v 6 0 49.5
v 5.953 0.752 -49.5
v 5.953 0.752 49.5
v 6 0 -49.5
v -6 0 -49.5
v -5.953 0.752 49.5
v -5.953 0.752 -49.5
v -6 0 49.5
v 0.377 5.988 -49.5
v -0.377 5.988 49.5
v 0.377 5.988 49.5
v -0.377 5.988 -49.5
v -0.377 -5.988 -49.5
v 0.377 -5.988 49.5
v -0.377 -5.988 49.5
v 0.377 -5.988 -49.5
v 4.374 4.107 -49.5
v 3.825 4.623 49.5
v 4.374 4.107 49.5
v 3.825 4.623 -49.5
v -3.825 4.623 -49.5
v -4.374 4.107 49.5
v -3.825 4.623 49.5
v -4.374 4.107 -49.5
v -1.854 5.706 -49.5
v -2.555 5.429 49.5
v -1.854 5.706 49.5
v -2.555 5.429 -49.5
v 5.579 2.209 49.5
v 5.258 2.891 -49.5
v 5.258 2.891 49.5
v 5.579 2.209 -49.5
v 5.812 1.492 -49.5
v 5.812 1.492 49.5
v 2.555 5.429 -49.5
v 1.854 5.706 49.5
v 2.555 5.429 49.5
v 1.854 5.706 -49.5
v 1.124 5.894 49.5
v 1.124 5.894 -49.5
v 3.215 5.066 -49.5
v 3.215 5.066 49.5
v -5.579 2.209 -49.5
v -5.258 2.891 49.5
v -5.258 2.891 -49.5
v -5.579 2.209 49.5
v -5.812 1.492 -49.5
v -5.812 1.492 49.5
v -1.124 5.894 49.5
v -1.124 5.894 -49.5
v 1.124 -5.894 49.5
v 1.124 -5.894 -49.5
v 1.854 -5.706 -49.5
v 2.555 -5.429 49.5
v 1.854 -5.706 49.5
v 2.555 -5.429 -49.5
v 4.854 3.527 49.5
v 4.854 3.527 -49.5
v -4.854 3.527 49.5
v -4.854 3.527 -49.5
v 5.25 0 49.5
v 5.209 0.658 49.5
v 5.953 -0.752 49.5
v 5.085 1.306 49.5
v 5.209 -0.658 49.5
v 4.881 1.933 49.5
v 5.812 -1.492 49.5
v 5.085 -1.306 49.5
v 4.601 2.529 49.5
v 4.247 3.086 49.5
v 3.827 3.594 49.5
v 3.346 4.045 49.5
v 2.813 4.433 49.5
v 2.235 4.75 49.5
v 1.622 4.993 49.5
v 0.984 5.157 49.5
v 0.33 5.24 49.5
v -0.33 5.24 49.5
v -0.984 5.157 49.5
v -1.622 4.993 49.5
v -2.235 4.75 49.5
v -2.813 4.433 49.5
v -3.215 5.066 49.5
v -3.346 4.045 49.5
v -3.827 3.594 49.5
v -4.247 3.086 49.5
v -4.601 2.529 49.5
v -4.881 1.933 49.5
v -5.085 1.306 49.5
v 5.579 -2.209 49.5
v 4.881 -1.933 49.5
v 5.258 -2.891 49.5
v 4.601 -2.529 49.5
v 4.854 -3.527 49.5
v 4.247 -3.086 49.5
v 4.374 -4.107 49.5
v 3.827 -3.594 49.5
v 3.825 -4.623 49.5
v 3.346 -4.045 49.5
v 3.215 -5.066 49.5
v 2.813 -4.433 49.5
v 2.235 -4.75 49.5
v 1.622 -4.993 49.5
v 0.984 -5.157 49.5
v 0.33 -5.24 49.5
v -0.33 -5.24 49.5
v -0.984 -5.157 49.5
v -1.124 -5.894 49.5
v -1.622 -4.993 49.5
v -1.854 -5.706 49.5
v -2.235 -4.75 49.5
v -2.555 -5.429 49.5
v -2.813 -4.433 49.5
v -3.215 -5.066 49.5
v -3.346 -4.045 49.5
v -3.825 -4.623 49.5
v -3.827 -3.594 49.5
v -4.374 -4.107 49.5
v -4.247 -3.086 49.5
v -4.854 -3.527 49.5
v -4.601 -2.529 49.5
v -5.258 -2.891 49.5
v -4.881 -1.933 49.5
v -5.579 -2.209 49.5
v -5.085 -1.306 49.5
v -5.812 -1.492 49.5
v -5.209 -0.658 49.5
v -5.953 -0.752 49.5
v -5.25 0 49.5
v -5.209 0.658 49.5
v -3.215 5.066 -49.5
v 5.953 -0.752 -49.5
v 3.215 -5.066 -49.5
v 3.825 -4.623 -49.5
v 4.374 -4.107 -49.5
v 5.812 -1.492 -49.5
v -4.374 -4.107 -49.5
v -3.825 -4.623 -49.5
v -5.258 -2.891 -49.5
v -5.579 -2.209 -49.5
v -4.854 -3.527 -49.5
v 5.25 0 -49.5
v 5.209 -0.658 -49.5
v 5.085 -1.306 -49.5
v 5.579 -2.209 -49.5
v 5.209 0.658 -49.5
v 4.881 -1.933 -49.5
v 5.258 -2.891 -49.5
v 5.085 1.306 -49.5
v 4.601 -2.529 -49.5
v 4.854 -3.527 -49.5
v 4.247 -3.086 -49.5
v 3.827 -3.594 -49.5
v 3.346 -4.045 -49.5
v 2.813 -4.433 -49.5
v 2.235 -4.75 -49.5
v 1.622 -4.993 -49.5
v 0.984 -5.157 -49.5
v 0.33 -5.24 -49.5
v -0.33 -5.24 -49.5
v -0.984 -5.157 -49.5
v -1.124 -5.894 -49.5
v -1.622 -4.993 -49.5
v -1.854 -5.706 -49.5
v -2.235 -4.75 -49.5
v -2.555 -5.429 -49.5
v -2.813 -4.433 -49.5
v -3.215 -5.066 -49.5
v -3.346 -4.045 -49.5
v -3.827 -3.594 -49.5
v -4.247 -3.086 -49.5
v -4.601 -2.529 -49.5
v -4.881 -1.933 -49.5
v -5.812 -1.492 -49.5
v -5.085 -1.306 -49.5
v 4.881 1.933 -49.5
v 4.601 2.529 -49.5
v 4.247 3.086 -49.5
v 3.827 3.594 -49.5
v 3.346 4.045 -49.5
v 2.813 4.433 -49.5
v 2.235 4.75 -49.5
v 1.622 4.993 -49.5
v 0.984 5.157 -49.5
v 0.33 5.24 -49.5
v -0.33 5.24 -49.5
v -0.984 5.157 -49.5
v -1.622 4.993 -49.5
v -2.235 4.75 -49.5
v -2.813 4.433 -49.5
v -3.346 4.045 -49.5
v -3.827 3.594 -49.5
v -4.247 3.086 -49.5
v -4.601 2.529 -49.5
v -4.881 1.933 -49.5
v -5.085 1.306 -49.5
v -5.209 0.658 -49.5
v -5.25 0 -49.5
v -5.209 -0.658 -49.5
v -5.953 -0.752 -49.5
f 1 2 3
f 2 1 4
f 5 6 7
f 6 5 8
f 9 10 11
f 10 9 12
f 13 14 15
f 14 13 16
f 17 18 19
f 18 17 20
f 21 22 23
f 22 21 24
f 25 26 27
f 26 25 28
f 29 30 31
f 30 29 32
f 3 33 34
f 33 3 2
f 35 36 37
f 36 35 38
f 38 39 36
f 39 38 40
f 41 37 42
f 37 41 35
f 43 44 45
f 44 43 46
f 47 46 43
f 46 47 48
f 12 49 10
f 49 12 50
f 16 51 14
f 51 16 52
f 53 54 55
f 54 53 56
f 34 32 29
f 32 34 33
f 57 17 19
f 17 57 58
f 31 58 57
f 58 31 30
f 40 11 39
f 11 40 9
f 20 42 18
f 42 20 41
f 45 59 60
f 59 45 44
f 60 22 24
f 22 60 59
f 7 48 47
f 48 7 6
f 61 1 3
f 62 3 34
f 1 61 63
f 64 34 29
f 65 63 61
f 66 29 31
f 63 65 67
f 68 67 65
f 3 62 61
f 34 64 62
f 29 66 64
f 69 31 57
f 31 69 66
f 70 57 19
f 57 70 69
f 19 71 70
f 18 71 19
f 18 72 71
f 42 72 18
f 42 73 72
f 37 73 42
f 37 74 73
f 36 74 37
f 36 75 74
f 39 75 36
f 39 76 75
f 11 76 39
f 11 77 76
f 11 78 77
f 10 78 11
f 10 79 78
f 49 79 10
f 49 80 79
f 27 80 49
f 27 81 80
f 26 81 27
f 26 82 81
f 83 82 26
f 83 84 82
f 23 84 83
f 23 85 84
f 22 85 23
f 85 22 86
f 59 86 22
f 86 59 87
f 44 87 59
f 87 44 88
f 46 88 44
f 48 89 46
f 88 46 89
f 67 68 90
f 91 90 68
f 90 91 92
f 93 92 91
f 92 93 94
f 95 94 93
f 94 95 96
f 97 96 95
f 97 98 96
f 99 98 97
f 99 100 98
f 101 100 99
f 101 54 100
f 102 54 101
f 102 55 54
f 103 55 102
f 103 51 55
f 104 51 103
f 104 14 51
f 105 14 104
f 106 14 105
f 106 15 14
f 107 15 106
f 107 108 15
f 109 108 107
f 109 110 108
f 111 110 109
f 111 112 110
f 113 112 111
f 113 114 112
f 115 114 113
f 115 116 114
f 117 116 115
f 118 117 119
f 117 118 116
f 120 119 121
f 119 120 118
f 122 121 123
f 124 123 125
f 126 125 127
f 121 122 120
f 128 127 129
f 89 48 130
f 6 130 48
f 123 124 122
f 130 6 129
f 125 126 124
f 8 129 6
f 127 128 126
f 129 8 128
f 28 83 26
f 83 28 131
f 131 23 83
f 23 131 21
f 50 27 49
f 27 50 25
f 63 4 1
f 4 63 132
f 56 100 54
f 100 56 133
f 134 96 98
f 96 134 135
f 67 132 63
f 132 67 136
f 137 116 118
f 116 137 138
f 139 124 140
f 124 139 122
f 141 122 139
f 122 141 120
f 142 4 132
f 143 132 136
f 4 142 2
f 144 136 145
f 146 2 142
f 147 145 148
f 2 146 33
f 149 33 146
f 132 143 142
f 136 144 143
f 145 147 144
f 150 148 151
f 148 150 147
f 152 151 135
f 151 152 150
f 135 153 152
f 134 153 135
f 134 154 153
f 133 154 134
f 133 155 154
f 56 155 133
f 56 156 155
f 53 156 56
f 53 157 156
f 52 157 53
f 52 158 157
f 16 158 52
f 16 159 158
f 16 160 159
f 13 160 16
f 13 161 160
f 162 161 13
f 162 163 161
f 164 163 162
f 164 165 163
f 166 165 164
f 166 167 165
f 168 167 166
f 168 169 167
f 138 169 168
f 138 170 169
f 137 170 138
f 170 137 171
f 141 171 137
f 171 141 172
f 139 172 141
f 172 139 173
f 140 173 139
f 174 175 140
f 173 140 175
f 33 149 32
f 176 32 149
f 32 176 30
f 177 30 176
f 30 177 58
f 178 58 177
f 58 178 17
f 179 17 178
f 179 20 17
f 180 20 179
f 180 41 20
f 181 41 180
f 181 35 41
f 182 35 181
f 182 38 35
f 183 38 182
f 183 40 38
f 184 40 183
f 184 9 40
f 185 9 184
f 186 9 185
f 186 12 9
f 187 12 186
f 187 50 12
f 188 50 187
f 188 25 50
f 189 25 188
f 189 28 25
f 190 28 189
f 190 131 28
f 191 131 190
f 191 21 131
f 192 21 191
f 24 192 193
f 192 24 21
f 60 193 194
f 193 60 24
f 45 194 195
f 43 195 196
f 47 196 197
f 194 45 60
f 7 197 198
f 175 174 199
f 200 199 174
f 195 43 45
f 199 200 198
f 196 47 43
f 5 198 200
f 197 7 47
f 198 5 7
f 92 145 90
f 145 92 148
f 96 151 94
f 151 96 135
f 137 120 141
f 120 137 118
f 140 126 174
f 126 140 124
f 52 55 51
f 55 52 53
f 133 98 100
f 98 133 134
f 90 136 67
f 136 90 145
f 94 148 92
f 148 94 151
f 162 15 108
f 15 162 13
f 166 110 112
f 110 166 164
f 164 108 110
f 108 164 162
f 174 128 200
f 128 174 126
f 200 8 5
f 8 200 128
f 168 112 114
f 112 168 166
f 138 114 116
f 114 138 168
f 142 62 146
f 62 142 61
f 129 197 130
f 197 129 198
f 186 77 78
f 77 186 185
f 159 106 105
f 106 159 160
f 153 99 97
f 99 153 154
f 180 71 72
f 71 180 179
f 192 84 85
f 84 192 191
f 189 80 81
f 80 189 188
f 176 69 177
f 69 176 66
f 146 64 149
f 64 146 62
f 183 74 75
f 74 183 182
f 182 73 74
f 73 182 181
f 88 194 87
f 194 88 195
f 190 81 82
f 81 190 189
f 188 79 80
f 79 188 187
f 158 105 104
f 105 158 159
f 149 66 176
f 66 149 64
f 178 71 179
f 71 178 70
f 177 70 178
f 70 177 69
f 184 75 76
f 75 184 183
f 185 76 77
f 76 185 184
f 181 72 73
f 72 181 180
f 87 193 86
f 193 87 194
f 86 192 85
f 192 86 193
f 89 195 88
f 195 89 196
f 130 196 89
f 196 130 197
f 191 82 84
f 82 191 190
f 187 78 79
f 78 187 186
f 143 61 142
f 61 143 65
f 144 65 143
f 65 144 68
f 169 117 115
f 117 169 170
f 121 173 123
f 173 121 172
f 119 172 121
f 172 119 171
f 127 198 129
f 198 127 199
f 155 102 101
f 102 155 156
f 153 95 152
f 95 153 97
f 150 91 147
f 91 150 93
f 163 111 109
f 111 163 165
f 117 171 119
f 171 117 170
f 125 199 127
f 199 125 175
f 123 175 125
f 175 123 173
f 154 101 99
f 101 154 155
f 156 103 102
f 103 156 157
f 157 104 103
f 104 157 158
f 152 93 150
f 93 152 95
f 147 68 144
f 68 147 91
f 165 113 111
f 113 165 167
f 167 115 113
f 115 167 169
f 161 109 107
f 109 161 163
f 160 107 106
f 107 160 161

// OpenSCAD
$fn = 50;


difference() {
	union() {
		translate(v = [0, 0, -49.5000000000]) {
			cylinder(h = 99, r = 6.0000000000);
		}
	}
	union() {
		translate(v = [0, 0, -100.0000000000]) {
			cylinder(h = 200, r = 5.2500000000);
		}
	}
}
